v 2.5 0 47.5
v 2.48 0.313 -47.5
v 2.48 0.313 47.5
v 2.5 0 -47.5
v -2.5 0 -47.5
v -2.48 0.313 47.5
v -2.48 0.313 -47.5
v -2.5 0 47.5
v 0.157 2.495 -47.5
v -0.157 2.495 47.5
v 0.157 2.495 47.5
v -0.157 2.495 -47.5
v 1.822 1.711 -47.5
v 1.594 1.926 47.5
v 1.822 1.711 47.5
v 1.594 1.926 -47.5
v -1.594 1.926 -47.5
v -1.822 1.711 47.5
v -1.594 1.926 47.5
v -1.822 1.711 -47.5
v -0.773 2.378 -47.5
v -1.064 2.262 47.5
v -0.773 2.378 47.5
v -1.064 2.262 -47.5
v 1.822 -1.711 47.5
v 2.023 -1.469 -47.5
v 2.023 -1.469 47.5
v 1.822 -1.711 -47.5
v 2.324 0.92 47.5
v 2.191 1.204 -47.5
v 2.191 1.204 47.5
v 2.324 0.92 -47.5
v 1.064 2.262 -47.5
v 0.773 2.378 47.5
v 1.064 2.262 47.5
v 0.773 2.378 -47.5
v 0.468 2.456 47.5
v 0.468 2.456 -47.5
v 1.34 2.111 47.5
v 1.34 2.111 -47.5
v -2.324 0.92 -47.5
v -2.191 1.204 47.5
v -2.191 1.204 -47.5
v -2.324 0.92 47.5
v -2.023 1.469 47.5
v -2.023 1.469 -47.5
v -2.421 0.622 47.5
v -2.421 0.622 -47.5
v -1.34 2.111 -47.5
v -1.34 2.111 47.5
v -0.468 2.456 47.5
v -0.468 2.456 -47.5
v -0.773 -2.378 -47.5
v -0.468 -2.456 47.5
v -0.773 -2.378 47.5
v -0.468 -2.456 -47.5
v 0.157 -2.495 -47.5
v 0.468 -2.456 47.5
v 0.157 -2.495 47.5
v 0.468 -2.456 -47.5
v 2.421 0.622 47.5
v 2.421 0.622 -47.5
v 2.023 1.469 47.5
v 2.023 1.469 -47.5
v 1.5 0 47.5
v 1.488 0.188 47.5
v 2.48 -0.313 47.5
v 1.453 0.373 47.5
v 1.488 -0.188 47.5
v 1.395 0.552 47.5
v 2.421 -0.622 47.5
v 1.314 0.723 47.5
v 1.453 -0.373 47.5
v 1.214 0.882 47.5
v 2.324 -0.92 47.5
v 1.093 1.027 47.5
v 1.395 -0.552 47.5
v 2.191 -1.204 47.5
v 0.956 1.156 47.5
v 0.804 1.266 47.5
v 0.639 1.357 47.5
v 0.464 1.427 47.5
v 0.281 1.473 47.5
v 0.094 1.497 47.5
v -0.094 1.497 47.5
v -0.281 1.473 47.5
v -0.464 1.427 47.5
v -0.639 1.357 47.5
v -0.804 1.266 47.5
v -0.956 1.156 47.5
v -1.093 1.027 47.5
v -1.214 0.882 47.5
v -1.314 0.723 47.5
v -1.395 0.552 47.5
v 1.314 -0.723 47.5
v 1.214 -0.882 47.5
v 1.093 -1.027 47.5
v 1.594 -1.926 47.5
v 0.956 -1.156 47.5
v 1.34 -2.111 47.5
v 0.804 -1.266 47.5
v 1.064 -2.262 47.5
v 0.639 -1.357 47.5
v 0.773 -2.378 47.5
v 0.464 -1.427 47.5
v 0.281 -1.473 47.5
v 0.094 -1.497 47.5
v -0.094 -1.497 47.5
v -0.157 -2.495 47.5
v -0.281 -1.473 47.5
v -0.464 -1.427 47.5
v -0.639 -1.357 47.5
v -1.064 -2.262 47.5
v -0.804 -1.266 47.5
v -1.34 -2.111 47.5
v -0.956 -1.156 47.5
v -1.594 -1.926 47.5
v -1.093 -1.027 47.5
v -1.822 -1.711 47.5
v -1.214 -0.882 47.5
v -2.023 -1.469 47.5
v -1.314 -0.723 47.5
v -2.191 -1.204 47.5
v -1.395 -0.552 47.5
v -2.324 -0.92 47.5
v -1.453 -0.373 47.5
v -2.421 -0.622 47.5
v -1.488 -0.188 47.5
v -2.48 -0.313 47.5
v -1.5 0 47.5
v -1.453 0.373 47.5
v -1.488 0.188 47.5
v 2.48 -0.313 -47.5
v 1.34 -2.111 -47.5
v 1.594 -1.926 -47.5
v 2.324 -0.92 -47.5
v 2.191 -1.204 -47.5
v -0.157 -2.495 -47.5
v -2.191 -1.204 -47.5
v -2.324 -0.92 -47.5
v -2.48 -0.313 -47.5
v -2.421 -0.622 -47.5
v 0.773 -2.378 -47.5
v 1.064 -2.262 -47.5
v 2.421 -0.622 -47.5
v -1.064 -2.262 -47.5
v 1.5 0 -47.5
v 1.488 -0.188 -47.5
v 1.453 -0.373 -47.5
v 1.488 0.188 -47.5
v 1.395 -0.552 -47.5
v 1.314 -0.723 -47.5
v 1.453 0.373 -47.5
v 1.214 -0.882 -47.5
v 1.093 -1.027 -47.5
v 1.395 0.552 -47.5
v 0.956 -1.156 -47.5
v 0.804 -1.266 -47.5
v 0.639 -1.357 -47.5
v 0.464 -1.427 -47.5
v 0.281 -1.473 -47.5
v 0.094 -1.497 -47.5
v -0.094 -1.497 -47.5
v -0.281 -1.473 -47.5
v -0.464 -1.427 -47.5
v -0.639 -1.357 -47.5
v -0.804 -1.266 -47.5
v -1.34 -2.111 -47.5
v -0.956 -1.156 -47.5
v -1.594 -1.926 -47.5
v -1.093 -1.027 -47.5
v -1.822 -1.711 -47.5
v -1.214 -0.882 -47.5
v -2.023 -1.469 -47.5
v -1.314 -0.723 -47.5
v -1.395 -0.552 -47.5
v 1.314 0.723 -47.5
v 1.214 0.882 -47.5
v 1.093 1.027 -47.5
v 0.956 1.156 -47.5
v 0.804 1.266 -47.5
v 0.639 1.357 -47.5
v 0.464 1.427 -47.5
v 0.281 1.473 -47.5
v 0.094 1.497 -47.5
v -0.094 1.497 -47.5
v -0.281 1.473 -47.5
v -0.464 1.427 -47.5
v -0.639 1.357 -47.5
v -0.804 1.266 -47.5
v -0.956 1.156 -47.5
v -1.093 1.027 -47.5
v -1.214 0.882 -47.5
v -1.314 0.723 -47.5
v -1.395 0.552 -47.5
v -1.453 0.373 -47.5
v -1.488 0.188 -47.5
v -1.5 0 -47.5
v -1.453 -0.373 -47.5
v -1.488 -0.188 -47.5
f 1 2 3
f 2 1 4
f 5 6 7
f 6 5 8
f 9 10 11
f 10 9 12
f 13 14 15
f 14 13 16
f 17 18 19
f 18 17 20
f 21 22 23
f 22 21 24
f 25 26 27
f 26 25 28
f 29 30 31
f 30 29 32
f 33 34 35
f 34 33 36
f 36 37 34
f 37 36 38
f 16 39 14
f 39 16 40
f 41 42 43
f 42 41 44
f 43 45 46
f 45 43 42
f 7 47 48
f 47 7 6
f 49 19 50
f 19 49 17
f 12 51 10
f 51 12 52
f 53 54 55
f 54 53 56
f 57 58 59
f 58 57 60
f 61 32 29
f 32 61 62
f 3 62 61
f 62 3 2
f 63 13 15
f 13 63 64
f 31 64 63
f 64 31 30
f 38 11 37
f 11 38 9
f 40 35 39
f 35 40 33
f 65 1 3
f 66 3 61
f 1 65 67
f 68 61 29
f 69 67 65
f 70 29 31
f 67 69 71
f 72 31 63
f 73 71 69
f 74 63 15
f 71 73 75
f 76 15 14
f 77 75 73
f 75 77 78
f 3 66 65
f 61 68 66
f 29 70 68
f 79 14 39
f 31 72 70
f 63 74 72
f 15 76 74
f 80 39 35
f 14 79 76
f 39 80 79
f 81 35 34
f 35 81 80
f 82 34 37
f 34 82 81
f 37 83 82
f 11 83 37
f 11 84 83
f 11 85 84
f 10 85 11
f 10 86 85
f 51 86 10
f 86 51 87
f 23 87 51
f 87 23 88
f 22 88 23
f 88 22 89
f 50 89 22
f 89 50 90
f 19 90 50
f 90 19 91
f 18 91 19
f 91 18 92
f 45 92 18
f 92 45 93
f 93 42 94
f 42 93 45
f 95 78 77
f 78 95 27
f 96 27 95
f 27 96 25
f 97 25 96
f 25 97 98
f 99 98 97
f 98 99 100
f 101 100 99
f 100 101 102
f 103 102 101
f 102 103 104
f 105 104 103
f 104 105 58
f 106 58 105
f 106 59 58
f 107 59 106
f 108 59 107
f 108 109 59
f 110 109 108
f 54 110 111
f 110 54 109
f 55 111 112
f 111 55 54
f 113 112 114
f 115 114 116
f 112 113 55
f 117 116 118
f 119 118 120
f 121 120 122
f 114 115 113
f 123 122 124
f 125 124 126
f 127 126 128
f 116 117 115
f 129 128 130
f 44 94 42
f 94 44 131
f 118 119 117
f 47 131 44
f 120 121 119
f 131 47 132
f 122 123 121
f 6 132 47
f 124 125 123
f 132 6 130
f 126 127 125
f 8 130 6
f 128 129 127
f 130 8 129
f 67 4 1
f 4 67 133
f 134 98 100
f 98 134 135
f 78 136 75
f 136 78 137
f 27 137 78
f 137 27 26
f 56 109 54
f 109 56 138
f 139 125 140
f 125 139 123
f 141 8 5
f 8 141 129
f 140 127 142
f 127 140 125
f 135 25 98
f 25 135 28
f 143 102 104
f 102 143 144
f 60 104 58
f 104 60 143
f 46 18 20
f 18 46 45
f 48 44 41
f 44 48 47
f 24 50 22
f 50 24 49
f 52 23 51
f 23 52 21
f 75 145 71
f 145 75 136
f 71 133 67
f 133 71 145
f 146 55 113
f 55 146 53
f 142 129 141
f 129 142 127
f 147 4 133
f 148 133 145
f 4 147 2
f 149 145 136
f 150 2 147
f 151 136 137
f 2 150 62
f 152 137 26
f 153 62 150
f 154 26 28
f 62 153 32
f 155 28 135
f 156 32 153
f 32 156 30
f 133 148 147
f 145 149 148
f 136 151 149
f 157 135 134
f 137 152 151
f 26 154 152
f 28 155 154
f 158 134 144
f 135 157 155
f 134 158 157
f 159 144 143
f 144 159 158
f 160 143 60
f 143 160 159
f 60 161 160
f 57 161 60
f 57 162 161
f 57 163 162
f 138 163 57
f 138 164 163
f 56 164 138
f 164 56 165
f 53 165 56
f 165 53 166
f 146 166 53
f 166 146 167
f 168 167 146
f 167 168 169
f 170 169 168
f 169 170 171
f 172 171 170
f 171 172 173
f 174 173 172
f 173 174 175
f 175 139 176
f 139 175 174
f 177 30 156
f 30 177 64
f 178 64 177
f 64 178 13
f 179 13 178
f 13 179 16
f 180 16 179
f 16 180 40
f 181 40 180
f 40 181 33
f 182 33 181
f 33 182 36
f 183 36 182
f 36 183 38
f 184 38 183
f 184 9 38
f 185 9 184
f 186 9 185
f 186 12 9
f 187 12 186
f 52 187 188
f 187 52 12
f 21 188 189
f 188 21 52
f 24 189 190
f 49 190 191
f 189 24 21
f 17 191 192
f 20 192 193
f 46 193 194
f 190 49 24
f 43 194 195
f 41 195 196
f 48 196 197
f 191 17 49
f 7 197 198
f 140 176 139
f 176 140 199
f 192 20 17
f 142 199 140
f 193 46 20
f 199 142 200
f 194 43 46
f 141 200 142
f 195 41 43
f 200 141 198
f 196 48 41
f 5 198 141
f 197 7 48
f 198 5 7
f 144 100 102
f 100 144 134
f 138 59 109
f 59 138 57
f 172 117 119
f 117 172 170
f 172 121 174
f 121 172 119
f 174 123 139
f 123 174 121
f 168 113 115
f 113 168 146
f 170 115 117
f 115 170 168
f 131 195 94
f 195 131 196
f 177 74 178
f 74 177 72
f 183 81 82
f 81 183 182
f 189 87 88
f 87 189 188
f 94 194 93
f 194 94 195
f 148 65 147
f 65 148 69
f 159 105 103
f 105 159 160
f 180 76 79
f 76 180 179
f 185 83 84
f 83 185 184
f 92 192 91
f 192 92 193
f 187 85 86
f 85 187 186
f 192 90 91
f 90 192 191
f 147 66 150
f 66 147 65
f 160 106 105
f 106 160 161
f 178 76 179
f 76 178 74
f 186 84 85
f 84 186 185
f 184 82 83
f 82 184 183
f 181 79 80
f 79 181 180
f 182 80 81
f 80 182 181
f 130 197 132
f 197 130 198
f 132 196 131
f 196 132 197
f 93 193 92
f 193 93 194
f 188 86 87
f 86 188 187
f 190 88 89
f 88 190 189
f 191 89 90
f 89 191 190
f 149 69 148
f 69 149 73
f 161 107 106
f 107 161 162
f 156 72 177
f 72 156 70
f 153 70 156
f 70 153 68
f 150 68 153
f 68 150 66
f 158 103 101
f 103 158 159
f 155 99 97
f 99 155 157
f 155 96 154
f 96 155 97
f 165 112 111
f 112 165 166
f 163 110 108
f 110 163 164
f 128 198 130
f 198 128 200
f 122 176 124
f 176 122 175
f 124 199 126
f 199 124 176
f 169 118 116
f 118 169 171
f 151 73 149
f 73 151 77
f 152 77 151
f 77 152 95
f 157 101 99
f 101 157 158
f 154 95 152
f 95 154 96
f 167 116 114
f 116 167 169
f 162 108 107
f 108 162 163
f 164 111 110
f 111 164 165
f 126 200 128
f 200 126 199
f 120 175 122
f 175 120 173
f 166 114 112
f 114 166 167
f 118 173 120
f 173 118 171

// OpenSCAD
$fn = 50;


difference() {
	union() {
		translate(v = [0, 0, -47.5000000000]) {
			cylinder(h = 95, r = 2.5000000000);
		}
	}
	union() {
		translate(v = [0, 0, -100.0000000000]) {
			cylinder(h = 200, r = 1.5000000000);
		}
	}
}
